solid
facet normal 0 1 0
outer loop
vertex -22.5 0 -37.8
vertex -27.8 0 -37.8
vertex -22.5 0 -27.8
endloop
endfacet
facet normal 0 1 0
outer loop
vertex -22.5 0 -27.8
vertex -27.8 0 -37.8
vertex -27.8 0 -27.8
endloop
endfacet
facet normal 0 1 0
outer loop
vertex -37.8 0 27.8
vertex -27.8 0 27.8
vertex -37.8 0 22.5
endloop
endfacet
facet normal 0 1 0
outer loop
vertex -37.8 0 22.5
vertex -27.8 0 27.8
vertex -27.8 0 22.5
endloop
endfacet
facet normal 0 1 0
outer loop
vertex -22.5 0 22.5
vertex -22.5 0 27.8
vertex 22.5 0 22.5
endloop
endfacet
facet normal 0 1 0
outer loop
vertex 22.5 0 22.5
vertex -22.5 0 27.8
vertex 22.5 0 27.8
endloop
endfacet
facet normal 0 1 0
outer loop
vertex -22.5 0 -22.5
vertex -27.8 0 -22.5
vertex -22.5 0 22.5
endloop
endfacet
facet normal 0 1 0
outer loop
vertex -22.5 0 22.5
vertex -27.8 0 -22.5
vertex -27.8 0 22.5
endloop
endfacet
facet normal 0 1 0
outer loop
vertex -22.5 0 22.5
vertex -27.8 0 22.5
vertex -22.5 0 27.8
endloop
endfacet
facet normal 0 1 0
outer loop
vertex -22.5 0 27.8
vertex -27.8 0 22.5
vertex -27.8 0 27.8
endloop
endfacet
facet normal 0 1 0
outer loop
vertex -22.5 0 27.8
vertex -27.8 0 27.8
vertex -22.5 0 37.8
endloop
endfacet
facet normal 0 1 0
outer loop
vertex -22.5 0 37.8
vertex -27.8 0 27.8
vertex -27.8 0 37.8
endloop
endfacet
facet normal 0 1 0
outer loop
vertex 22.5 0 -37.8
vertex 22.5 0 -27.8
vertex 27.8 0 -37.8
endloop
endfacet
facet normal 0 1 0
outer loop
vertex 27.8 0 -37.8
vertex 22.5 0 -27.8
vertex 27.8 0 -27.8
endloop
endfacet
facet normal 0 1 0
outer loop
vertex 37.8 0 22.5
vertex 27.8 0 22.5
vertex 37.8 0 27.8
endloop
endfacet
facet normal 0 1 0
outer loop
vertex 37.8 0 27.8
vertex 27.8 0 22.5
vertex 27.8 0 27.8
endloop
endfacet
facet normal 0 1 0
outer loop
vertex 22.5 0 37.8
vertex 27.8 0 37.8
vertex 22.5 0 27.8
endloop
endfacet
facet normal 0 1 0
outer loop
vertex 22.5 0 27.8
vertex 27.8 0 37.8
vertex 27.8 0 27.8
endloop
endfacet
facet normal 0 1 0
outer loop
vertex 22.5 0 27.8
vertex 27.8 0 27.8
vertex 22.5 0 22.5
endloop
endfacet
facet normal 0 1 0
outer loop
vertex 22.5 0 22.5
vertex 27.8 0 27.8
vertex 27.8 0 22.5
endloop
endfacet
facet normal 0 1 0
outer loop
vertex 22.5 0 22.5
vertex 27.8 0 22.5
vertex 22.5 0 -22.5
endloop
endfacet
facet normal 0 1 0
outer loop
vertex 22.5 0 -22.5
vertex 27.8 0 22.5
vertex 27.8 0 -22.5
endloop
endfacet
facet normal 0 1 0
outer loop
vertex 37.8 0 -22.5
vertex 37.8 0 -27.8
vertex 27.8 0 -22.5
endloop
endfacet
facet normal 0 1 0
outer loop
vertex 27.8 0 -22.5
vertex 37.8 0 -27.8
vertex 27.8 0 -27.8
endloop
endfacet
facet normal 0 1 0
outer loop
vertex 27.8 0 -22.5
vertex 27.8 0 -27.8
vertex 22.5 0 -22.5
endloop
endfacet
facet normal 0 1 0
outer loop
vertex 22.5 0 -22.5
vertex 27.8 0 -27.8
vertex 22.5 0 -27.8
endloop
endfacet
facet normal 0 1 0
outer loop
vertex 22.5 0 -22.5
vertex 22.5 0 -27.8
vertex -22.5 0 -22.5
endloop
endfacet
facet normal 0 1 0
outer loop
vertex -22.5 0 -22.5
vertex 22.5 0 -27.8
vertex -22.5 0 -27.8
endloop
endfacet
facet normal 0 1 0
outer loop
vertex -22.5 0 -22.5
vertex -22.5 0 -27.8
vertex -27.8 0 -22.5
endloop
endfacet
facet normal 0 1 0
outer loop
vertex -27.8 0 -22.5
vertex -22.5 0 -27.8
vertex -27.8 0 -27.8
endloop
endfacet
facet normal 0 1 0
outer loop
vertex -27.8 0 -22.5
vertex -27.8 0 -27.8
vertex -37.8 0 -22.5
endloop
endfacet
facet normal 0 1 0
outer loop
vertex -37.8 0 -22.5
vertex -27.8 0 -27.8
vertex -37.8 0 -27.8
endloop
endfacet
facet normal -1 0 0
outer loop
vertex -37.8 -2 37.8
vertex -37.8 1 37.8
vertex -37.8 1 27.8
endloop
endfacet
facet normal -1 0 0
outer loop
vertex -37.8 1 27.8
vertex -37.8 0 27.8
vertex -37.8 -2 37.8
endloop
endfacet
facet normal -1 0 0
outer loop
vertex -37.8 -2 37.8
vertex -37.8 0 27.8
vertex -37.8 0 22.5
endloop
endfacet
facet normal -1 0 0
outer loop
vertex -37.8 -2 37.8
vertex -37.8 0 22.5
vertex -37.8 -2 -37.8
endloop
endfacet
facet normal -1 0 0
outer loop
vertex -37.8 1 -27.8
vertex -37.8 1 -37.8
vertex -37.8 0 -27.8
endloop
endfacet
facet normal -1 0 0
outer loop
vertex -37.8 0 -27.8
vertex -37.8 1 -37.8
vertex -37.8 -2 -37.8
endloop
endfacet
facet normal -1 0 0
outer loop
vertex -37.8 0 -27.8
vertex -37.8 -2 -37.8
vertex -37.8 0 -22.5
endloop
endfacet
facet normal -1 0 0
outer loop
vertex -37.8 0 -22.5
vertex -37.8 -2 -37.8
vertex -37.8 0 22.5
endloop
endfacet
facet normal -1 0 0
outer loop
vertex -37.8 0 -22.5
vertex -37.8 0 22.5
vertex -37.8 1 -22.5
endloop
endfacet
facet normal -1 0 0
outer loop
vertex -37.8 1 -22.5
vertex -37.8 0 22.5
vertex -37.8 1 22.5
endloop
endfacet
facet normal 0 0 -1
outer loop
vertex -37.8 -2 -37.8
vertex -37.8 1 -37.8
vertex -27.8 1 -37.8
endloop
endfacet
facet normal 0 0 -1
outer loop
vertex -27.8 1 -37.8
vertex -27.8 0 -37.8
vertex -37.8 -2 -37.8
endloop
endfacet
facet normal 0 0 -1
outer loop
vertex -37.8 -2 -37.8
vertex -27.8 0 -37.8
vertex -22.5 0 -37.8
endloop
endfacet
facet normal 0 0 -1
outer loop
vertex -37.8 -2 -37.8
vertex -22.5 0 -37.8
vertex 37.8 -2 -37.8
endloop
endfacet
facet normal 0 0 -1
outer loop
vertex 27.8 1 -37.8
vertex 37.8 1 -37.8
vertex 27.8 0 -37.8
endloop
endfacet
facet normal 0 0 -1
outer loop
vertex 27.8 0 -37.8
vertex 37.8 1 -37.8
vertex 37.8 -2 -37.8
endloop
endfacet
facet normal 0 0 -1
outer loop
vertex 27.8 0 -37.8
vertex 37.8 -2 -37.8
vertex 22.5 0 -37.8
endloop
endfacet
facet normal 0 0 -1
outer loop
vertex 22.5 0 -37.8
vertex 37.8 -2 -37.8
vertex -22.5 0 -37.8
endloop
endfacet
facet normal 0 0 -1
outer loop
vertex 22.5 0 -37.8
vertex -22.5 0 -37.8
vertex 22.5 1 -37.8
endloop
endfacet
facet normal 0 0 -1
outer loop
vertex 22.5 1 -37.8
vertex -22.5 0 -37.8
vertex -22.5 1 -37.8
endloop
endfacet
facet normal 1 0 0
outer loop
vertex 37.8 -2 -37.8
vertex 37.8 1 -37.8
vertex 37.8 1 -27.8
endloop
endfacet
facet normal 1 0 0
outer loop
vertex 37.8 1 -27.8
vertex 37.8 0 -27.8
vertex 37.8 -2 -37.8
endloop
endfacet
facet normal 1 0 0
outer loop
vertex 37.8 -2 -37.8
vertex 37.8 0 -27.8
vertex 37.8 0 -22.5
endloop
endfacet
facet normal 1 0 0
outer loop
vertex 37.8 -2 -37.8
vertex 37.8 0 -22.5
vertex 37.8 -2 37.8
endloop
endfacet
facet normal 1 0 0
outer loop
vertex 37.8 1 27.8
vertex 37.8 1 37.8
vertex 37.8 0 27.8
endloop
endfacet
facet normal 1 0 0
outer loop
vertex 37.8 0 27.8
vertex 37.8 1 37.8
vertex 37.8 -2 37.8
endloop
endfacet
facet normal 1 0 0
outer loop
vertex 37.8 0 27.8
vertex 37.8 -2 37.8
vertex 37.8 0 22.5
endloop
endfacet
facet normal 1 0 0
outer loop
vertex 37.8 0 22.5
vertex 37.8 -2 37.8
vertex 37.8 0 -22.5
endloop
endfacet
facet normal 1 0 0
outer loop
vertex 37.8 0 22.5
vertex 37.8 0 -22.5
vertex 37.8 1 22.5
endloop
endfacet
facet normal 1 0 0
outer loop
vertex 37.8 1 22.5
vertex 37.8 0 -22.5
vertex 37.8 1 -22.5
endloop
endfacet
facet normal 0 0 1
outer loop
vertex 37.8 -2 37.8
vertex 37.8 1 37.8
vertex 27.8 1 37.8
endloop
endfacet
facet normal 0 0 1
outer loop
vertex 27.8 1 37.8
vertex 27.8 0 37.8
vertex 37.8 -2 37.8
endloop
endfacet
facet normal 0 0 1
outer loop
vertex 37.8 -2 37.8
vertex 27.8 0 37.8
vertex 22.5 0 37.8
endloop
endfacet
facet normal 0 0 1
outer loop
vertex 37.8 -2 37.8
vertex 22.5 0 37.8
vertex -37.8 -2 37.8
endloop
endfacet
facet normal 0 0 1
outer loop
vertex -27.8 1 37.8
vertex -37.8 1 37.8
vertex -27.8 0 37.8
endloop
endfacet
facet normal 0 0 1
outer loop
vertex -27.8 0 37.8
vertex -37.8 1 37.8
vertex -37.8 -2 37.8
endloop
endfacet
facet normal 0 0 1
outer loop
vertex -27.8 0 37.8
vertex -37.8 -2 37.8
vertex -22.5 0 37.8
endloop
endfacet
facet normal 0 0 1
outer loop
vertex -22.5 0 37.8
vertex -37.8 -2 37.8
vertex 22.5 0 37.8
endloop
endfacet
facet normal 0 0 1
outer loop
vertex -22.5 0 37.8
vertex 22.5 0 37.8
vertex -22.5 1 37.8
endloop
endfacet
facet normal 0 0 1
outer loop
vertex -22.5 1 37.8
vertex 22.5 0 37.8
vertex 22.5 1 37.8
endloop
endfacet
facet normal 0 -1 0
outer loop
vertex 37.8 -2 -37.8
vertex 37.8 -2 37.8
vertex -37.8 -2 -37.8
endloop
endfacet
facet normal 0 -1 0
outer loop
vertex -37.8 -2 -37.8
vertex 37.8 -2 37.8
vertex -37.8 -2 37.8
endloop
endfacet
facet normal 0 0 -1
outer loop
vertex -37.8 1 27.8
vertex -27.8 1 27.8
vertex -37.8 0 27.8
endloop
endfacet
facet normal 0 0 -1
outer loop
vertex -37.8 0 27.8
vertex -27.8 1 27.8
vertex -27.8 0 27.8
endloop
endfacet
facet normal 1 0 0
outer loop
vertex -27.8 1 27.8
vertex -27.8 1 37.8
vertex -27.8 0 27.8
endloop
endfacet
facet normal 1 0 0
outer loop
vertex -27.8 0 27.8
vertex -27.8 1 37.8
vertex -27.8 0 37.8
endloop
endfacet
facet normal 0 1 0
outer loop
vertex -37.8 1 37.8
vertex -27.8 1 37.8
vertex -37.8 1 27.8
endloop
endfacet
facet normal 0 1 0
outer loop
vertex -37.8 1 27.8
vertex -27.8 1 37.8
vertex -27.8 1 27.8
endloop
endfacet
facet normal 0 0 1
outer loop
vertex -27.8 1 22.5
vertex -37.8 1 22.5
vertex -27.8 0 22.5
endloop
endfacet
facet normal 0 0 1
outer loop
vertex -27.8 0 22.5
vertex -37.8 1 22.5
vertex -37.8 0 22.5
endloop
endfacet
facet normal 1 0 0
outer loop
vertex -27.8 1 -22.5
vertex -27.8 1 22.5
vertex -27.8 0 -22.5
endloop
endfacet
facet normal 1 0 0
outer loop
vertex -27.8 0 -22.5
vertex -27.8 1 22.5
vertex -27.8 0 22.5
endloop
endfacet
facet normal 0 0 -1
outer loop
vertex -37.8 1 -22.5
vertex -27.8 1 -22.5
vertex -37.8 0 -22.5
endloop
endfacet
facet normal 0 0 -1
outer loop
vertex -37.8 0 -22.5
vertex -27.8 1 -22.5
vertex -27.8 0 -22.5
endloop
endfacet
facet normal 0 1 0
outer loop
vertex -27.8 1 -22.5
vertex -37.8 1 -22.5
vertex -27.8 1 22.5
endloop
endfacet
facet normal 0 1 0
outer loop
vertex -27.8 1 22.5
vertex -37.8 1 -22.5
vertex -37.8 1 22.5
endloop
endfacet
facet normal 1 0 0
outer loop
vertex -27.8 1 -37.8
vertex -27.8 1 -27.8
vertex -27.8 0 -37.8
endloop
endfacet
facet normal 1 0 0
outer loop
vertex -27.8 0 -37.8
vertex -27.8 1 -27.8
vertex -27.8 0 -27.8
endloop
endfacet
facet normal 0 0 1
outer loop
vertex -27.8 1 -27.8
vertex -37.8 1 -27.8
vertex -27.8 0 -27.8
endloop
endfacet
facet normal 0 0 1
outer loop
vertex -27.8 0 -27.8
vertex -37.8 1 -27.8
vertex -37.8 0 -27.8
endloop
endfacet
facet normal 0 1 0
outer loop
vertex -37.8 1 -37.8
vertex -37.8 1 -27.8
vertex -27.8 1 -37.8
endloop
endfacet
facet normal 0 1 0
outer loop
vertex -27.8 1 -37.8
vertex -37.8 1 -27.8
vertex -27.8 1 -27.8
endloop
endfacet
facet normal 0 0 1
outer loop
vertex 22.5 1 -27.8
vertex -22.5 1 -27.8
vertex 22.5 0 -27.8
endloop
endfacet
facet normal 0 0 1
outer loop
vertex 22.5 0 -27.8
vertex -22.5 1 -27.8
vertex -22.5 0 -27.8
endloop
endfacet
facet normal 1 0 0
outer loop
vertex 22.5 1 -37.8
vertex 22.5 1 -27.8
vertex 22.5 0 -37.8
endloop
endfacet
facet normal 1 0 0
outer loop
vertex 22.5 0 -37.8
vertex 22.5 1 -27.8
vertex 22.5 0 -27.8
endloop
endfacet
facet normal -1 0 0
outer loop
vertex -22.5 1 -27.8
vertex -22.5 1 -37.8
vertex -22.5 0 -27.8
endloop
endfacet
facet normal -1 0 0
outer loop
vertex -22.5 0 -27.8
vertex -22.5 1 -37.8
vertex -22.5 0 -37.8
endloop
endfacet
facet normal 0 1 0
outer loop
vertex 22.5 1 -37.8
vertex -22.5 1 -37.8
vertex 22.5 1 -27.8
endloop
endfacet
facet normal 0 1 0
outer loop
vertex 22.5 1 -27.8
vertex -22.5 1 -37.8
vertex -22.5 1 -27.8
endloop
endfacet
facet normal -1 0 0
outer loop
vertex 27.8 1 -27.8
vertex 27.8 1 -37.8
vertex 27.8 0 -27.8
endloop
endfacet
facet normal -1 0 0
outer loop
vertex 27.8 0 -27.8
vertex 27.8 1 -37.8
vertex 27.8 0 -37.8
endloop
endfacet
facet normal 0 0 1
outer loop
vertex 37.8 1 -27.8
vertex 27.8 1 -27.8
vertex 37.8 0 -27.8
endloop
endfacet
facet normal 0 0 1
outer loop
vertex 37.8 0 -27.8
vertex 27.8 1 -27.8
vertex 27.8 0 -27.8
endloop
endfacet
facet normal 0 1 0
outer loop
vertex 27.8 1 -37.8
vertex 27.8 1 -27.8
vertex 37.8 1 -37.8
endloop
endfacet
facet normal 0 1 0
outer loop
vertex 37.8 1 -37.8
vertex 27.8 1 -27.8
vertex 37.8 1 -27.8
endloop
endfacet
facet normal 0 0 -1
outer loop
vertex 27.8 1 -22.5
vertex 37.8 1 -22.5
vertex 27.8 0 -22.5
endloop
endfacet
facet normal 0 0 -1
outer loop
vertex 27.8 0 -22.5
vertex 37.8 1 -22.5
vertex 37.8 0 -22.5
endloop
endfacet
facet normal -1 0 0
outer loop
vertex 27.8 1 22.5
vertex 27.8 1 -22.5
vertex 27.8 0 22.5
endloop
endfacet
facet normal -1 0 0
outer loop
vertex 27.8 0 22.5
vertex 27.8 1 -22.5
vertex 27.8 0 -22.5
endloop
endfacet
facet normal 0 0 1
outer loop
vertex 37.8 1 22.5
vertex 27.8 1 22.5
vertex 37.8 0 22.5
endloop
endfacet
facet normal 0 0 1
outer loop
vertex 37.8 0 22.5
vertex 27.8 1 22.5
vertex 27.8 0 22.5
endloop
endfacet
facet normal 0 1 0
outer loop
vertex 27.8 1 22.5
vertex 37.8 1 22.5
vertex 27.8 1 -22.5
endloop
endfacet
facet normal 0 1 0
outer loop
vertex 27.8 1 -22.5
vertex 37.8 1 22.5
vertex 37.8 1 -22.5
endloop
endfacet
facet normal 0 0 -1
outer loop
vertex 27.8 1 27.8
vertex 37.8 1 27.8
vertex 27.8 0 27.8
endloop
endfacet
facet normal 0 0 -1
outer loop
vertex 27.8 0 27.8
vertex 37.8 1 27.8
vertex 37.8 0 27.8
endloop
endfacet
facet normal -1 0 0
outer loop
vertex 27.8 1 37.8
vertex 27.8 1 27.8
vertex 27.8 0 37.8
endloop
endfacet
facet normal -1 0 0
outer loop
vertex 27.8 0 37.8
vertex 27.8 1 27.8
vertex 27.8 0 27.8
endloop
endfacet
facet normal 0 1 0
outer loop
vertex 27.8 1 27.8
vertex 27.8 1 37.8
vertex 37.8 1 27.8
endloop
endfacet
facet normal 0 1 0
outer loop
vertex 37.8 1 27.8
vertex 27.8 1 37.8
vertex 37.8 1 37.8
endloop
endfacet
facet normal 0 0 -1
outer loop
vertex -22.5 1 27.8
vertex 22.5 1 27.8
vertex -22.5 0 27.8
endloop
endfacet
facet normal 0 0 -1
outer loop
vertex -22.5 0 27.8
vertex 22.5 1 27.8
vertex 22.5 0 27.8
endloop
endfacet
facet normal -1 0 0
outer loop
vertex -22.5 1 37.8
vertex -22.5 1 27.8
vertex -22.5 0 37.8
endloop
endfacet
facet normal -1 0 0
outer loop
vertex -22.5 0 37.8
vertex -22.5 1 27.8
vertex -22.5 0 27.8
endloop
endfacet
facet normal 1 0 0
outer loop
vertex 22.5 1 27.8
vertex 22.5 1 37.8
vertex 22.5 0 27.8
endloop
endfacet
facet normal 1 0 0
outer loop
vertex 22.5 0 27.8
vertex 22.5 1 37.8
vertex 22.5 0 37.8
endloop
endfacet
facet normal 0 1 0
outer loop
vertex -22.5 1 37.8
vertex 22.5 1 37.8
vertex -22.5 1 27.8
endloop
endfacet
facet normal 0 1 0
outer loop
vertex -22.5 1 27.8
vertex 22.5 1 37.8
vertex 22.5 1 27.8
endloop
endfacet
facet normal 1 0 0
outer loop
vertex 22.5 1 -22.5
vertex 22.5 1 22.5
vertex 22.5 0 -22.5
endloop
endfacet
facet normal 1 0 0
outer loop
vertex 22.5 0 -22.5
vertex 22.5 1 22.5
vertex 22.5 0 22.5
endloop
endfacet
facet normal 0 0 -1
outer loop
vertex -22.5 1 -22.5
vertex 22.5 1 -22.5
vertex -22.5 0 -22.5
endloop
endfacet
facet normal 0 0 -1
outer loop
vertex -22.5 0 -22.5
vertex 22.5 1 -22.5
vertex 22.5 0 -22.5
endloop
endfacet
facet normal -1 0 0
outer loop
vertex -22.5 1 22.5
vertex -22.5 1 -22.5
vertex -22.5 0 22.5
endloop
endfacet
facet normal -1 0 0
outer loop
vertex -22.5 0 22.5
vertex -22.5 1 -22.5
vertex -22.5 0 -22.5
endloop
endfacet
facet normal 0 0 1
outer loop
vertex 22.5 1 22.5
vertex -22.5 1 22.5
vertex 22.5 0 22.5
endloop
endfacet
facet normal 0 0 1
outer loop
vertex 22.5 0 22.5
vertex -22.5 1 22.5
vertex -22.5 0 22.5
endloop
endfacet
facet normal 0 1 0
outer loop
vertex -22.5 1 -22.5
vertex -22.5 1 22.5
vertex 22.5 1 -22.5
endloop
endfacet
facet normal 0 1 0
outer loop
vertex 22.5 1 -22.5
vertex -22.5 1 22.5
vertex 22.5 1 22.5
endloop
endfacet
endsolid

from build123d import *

# Parameters (mm, degrees)
SKETCH1_W           = 75.6
SKETCH1_H           = 75.6
BOSS_EXTRUDE1_DEPTH = 2
SKETCH1_3_W         = 10
SKETCH1_3_H         = 45
SKETCH1_3_H_2       = 10
SKETCH1_3_W_2       = 45
BOSS_EXTRUDE2_DEPTH = 1


with BuildPart() as part:
    # Sketch1 → Boss-Extrude1 (new body)
    with BuildSketch(Plane(origin=(0, 0, 0), x_dir=(1, 0, 0), z_dir=(0, 1, 0))):
        Rectangle(SKETCH1_W, SKETCH1_H)
    extrude(amount=-BOSS_EXTRUDE1_DEPTH)

    # Sketch1<3> → Boss-Extrude2 (add)
    with BuildSketch(Plane(origin=(0, 0, 0), x_dir=(1, 0, 0), z_dir=(0, 1, 0))):
        with Locations((-32.8, 0)):
            Rectangle(SKETCH1_3_W, SKETCH1_3_H)
        with Locations((-32.8, 32.8)):
            Rectangle(SKETCH1_3_W, SKETCH1_3_H_2)
        with Locations((-32.8, -32.8)):
            Rectangle(SKETCH1_3_W, SKETCH1_3_H_2)
        with Locations((0, 32.8)):
            Rectangle(SKETCH1_3_W_2, SKETCH1_3_H_2)
        with Locations((0, -32.8)):
            Rectangle(SKETCH1_3_W_2, SKETCH1_3_H_2)
        with Locations((32.8, 32.8)):
            Rectangle(SKETCH1_3_W, SKETCH1_3_H_2)
        with Locations((32.8, -32.8)):
            Rectangle(SKETCH1_3_W, SKETCH1_3_H_2)
        with Locations((32.8, 0)):
            Rectangle(SKETCH1_3_W, SKETCH1_3_H)
        Rectangle(SKETCH1_3_W_2, SKETCH1_3_H)
    extrude(amount=BOSS_EXTRUDE2_DEPTH)


solid = part.part
